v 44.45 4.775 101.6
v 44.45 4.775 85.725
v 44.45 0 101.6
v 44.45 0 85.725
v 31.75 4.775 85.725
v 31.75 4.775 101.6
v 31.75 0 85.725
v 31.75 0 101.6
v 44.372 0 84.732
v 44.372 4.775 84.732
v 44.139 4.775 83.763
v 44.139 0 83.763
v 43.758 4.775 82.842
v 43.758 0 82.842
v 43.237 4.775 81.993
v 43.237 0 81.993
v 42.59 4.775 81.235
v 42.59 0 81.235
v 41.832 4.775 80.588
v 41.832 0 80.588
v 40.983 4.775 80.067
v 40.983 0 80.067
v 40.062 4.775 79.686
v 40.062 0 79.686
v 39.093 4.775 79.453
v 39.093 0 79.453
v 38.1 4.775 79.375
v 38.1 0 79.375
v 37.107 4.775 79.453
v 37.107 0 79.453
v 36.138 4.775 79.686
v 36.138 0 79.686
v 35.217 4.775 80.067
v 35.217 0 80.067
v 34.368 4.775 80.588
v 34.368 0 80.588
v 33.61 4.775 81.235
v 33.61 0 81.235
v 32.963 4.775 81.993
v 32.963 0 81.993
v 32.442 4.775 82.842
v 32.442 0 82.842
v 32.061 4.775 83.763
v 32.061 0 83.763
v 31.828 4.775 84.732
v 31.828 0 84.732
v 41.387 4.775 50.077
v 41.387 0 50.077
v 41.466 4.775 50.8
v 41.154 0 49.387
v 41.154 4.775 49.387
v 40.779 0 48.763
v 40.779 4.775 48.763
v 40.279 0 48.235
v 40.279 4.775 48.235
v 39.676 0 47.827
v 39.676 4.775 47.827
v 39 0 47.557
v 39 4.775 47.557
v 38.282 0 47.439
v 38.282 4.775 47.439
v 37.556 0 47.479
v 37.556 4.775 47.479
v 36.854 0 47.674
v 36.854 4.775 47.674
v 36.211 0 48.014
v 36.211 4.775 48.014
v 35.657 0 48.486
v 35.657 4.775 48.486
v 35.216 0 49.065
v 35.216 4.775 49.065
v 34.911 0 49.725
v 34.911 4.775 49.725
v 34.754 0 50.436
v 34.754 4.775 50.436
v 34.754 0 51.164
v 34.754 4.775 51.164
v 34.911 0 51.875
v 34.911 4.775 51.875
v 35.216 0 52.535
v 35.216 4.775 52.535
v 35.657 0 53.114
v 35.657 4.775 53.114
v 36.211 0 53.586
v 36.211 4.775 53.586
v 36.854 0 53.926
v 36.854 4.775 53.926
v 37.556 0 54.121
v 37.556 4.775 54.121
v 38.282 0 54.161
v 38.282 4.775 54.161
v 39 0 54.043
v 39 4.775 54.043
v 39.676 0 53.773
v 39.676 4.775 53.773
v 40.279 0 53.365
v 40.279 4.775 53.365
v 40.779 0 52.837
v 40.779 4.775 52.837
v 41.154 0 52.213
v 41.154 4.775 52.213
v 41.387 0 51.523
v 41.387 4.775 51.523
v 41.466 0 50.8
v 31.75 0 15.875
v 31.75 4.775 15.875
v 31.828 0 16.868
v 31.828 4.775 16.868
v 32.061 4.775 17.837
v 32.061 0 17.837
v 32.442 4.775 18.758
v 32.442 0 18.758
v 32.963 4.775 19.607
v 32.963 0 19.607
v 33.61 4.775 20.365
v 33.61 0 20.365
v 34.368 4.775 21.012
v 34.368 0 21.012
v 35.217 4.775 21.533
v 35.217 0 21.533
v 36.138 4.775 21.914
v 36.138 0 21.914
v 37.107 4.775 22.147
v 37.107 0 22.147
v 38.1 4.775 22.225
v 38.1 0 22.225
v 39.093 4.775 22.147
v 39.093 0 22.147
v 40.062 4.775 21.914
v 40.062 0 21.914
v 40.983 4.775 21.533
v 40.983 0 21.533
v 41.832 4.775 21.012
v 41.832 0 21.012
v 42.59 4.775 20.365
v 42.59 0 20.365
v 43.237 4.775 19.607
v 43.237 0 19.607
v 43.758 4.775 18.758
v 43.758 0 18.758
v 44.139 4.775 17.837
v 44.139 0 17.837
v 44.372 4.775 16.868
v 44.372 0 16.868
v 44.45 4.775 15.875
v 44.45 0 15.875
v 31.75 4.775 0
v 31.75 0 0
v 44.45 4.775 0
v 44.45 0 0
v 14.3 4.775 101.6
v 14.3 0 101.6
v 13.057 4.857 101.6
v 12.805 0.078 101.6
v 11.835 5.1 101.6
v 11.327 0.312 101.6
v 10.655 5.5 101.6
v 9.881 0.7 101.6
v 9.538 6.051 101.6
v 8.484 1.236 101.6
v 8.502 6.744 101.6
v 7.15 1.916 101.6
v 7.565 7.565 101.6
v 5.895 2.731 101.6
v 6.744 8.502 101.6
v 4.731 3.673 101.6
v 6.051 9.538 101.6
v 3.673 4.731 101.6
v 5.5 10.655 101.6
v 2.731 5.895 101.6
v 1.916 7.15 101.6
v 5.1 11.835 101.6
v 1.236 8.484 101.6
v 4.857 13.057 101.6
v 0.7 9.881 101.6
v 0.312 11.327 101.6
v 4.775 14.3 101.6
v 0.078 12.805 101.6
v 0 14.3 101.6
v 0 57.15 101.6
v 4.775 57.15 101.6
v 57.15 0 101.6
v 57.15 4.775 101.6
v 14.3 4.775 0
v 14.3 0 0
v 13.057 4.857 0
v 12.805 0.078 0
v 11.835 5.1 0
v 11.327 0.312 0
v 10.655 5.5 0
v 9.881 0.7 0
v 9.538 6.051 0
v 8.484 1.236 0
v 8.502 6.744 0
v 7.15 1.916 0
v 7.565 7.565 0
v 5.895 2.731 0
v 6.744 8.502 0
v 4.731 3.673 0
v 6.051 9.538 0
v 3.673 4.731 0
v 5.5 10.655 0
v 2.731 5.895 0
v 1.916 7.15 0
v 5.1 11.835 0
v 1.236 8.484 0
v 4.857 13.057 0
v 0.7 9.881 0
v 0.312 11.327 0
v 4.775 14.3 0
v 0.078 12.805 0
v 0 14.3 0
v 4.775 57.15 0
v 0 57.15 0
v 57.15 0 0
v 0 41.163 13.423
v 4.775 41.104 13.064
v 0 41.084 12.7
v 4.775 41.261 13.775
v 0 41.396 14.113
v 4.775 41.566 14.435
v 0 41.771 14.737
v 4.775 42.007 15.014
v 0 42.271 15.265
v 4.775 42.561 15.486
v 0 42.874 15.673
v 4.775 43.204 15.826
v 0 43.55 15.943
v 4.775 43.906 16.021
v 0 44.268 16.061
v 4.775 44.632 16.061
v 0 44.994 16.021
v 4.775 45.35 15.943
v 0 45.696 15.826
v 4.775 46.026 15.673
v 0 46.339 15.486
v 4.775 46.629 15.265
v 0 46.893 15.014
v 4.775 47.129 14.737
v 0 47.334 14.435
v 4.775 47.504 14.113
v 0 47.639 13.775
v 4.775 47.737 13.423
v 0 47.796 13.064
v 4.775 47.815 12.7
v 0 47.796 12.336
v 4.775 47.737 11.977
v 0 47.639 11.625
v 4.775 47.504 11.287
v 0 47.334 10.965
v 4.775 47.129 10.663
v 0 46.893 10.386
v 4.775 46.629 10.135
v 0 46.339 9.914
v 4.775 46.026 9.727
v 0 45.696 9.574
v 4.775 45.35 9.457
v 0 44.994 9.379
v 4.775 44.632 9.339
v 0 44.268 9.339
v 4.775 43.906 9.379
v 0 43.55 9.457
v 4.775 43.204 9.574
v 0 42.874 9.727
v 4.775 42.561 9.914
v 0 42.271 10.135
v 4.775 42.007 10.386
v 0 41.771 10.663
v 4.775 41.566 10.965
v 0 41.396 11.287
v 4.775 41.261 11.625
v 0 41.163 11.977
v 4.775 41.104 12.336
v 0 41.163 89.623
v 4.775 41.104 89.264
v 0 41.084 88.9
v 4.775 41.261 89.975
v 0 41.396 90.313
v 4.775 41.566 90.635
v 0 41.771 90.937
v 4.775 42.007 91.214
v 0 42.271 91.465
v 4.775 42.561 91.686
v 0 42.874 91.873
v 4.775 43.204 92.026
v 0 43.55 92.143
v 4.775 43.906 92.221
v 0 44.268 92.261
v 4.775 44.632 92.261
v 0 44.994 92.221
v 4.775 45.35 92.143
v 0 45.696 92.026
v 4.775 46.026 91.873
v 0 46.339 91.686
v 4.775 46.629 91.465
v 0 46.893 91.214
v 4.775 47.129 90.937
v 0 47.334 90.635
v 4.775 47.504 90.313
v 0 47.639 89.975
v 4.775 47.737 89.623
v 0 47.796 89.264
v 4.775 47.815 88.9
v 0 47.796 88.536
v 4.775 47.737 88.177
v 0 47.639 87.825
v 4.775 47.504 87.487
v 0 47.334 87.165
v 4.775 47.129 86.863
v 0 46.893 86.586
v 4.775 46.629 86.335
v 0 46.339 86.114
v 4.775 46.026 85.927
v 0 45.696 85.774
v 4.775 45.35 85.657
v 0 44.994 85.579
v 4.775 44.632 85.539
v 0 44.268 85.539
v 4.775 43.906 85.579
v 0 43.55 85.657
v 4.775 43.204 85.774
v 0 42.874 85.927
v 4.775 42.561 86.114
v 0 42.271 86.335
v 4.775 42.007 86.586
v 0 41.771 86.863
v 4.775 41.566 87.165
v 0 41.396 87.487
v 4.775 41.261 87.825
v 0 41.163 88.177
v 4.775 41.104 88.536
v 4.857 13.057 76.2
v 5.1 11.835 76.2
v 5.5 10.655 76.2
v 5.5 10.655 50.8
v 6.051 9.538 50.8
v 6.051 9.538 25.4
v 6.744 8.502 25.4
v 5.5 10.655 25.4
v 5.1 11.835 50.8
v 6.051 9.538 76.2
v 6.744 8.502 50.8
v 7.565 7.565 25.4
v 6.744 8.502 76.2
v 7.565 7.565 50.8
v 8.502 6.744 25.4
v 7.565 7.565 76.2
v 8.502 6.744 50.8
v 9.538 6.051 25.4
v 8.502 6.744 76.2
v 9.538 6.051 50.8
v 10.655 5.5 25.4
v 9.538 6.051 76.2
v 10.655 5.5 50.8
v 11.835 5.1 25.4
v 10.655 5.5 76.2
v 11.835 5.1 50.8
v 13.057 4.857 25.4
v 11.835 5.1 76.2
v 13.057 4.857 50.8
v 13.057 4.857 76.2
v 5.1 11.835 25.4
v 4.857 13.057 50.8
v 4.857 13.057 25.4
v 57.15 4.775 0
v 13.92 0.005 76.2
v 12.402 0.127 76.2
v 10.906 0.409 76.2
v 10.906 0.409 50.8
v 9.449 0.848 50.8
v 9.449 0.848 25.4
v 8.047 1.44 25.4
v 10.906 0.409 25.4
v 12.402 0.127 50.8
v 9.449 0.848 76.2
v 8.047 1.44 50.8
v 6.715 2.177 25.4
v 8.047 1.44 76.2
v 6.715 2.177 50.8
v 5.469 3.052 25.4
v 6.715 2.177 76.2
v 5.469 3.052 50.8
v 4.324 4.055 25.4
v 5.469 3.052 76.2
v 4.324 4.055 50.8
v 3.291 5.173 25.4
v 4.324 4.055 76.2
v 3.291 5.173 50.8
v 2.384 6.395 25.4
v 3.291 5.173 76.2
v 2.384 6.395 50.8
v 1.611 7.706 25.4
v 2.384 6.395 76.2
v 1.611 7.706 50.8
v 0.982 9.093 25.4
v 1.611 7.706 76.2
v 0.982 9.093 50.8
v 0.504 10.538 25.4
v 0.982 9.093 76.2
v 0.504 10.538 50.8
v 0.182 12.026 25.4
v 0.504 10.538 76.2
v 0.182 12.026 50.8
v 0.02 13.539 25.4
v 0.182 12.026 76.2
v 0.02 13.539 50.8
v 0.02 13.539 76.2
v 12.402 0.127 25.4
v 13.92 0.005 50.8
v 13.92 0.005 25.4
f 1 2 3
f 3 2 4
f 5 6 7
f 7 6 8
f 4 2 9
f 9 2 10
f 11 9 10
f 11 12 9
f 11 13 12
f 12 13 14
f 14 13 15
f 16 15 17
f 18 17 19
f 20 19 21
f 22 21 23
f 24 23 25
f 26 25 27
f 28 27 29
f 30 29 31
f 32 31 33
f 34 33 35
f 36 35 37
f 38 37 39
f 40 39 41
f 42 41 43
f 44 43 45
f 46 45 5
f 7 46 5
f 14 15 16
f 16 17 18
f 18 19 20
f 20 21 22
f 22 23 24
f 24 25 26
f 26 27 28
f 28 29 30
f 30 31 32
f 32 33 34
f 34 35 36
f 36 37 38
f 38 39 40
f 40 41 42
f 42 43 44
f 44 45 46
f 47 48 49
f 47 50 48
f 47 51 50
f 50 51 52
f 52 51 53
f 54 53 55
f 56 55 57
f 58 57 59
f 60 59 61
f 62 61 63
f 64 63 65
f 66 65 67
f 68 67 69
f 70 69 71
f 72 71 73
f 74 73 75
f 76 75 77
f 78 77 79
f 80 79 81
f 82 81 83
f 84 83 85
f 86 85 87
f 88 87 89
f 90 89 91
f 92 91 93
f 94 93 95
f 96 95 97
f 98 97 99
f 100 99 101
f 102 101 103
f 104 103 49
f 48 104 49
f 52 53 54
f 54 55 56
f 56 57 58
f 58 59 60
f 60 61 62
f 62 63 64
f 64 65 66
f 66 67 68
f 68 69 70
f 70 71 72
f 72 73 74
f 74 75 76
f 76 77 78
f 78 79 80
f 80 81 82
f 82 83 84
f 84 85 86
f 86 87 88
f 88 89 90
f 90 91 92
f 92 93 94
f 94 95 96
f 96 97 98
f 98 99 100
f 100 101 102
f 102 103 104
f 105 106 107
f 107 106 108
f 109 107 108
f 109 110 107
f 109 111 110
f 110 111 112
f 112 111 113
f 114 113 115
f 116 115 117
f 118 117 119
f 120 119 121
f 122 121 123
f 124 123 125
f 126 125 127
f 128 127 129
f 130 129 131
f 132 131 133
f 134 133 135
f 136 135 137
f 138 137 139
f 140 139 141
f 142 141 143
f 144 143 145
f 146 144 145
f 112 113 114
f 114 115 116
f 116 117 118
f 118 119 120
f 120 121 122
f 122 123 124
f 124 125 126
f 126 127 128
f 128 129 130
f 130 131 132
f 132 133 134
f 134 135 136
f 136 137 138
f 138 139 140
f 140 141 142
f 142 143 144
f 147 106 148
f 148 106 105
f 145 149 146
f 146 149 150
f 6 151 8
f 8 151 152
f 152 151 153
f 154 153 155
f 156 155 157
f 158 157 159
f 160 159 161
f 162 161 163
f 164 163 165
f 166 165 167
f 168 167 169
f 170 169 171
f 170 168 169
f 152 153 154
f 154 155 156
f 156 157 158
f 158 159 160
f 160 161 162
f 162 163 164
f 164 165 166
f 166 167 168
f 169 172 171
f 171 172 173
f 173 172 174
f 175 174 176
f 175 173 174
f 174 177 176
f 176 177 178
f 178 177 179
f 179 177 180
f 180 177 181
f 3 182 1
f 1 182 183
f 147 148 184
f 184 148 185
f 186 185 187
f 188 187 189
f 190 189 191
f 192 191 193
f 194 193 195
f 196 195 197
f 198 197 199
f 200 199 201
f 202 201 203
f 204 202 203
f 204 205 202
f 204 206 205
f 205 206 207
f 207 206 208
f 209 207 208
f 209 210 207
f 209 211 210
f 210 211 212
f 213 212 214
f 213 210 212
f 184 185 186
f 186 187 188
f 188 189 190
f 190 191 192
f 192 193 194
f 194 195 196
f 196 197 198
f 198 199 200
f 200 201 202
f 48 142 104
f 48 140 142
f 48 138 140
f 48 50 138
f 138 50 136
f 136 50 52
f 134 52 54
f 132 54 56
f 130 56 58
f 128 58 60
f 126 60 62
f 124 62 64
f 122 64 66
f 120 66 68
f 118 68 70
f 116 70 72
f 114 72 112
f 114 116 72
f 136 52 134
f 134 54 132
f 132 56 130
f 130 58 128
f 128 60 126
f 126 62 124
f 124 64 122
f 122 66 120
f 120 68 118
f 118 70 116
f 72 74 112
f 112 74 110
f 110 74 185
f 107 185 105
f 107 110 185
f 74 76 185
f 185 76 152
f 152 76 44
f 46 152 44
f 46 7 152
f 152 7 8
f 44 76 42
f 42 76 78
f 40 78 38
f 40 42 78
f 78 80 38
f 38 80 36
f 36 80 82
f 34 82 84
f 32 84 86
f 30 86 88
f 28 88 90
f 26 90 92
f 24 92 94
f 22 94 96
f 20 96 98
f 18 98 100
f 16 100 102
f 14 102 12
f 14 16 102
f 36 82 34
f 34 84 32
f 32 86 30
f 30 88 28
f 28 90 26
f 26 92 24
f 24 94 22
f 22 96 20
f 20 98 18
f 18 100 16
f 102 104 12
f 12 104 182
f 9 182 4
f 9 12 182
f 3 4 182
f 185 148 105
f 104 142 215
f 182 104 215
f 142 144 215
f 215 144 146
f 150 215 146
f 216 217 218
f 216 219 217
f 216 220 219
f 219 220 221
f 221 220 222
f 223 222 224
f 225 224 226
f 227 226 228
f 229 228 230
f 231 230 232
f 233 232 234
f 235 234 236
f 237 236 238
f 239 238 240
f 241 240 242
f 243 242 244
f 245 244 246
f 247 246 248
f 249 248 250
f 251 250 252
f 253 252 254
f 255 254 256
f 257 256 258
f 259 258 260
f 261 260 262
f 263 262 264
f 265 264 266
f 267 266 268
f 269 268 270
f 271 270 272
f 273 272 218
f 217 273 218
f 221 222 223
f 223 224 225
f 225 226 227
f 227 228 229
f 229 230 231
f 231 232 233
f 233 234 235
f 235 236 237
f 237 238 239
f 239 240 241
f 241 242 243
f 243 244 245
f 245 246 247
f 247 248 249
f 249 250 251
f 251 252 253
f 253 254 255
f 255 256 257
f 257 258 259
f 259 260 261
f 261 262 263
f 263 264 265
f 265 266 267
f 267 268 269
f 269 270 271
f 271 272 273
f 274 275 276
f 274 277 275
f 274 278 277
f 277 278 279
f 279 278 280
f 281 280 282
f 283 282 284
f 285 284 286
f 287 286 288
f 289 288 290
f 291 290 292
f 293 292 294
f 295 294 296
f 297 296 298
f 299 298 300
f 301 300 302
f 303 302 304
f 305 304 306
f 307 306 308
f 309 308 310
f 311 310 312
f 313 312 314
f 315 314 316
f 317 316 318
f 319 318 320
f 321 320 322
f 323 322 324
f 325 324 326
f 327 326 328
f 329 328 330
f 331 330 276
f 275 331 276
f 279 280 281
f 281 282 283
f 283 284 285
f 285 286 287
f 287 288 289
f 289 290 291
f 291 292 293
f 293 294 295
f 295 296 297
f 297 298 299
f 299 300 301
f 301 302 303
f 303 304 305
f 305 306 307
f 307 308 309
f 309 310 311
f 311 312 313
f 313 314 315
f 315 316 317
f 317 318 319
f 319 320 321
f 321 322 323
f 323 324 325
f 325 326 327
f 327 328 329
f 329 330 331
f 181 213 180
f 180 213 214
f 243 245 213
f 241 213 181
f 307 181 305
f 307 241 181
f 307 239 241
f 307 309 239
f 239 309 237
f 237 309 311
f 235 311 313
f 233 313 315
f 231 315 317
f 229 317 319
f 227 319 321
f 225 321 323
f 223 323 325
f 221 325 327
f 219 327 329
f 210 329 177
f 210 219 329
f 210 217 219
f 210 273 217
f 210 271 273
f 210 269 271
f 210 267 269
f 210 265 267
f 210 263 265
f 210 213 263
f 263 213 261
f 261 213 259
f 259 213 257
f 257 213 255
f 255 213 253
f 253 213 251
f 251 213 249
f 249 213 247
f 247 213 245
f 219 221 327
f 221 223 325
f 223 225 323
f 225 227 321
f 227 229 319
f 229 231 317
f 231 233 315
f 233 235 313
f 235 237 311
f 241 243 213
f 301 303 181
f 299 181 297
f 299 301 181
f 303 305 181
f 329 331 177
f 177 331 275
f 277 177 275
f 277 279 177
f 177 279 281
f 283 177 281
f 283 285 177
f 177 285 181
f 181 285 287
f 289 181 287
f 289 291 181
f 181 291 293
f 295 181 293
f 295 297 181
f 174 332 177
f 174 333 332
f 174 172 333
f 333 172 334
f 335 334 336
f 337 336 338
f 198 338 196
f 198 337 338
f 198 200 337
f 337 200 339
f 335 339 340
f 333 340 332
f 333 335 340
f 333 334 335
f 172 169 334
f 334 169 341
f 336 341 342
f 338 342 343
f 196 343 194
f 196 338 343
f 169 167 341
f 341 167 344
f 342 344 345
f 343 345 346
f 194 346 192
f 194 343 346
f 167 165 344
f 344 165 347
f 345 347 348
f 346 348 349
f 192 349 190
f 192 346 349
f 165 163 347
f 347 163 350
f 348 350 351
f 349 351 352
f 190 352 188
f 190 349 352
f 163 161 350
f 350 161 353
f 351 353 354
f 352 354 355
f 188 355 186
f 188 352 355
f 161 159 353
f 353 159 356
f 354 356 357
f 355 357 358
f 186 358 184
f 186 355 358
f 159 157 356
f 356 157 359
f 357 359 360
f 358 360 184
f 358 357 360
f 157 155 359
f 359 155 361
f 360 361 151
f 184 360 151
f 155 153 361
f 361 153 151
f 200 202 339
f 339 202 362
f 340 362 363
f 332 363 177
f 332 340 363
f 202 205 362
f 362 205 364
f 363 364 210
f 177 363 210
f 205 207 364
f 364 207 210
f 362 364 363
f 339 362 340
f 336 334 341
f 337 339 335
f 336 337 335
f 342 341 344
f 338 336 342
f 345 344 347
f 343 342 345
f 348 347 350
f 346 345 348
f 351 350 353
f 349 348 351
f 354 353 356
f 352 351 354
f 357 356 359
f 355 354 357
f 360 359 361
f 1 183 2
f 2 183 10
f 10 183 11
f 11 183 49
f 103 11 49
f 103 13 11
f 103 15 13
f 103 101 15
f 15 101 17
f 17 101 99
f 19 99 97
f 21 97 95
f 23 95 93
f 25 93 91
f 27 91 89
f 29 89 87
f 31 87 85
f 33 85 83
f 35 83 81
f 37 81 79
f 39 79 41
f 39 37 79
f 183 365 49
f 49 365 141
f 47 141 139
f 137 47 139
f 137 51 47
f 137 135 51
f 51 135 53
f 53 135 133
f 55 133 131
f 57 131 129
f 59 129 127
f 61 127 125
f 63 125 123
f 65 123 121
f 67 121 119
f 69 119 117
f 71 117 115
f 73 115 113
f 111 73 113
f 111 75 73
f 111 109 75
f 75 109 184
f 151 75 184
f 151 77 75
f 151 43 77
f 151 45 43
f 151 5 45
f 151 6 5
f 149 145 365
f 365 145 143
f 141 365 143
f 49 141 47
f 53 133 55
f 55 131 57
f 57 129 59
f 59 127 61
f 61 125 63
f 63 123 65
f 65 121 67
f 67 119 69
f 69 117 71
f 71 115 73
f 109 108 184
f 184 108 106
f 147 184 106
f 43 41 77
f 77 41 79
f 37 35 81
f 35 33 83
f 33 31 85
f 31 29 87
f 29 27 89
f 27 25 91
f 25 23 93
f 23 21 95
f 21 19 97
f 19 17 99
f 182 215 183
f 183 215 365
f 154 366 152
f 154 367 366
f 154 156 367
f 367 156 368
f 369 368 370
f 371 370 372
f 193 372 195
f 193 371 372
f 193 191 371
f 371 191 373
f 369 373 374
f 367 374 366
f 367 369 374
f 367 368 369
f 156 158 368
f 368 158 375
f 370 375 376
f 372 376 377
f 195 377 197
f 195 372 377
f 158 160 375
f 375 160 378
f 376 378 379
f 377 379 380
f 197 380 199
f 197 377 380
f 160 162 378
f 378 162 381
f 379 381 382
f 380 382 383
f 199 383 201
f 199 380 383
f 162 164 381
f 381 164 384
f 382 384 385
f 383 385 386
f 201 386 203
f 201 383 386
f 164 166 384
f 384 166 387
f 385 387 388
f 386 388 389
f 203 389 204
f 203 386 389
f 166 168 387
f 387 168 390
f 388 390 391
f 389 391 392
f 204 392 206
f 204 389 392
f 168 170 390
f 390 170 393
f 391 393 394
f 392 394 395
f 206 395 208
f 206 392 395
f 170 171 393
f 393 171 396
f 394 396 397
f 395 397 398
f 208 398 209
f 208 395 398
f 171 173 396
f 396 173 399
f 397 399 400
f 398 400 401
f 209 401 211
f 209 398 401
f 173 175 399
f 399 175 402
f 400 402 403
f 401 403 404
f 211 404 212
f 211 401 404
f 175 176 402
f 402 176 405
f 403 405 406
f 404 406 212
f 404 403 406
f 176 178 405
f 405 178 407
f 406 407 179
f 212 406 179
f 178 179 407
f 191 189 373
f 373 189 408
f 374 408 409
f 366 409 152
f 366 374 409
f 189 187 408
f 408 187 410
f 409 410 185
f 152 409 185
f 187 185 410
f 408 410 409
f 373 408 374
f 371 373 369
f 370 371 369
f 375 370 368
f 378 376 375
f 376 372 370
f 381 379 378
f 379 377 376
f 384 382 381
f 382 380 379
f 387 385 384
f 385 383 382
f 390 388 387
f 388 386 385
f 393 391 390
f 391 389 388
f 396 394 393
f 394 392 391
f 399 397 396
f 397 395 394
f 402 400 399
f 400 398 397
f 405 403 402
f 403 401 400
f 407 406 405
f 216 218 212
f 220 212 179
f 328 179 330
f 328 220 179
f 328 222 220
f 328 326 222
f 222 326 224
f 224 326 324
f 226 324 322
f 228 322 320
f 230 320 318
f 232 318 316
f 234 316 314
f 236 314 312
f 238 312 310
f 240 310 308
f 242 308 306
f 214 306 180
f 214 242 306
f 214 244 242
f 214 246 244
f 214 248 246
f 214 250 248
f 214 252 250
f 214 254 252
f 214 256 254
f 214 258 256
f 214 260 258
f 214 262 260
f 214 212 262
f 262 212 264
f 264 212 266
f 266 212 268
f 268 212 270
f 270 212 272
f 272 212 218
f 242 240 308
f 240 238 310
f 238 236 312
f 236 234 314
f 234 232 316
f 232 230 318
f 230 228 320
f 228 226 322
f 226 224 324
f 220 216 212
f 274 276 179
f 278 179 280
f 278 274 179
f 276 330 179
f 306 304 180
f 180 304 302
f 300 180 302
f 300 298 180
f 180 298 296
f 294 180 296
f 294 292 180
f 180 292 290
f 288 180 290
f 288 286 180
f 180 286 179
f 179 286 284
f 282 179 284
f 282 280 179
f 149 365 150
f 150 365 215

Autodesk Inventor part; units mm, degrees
ref_plane "YZ Plane" through (0, 0, 0) normal (1, 0, 0) x (0, 1, 0)
ref_plane "XZ Plane" through (0, 0, 0) normal (0, 1, 0) x (-1, 0, 0)
ref_plane "XY Plane" through (0, 0, 0) normal (0, 0, 1) x (1, 0, 0)
sketch "Sketch1" plane through (0, 0, 0) normal (0, 0, 1) x (1, 0, 0)
  line L0 (0, 57.15) -> (0, 14.3002)
  line L1 (14.3002, 0) -> (57.15, 0)
  line L2 (57.15, 0) -> (57.15, 4.7752)
  line L3 (57.15, 4.7752) -> (14.3002, 4.7752)
  line L4 (4.7752, 14.3002) -> (4.7752, 57.15)
  line L5 (4.7752, 57.15) -> (0, 57.15)
  arc A0 (4.7752, 14.3002) -> (14.3002, 4.7752) centre (14.3002, 14.3002) ccw
  arc A1 (0, 14.3002) -> (14.3002, 0) centre (14.3002, 14.3002) ccw
  point P0 (0, 0)
  dimension "d0" = 4.7752
  dimension "d1" = 9.525
  dimension "d2" = 14.3002
  dimension "d3" = 57.15
extrude "Extrusion1" add sketch "Sketch1" along normal blind 101.6
hole "Hole1" at (4.7752, 44.45, 88.9) direction (-1, 0, 0) diameter 6.731 end through all
hole "Hole2" at (4.7752, 44.45, 12.7) direction (-1, 0, 0) diameter 6.731 end through all
sketch "Sketch2" plane through (14.3002, 0, 0) normal (0, -1, 0) x (1, 0, 0)
  line L0 (42.8498, 101.6) -> (0, 101.6) projected
  line L1 (0, 0) -> (42.8498, 0) projected
  line L2 (42.8498, 0) -> (42.8498, 101.6) projected
  line L3 (30.1498, 101.6) -> (30.1498, 85.725)
  line L4 (17.4498, 101.6) -> (17.4498, 85.725)
  line L5 (30.1498, 0) -> (30.1498, 15.875)
  line L6 (17.4498, 0) -> (17.4498, 15.875)
  arc A0 (17.4498, 85.725) -> (30.1498, 85.725) centre (23.7998, 85.725) ccw
  arc A1 (30.1498, 15.875) -> (17.4498, 15.875) centre (23.7998, 15.875) ccw
  circle A2 centre (23.7998, 50.8) radius 3.3655
  line L7 (30.1498, 101.6) -> (17.4498, 101.6)
  line L8 (30.1498, 0) -> (17.4498, 0)
  point P0 (-14.3002, 0)
  dimension "d24" = 12.7
  dimension "d25" = 19.05
  dimension "d26" = 15.875
  dimension "d27" = 6.731
  dimension "d28" = 50.8
  dimension "d29" = 19.05
extrude "Extrusion2" cut sketch "Sketch2" against normal blind 101.6
equation "\"d2\" = d1 + d0"
equation "\"d29\" = d25"
properties part number "GE-12073"
